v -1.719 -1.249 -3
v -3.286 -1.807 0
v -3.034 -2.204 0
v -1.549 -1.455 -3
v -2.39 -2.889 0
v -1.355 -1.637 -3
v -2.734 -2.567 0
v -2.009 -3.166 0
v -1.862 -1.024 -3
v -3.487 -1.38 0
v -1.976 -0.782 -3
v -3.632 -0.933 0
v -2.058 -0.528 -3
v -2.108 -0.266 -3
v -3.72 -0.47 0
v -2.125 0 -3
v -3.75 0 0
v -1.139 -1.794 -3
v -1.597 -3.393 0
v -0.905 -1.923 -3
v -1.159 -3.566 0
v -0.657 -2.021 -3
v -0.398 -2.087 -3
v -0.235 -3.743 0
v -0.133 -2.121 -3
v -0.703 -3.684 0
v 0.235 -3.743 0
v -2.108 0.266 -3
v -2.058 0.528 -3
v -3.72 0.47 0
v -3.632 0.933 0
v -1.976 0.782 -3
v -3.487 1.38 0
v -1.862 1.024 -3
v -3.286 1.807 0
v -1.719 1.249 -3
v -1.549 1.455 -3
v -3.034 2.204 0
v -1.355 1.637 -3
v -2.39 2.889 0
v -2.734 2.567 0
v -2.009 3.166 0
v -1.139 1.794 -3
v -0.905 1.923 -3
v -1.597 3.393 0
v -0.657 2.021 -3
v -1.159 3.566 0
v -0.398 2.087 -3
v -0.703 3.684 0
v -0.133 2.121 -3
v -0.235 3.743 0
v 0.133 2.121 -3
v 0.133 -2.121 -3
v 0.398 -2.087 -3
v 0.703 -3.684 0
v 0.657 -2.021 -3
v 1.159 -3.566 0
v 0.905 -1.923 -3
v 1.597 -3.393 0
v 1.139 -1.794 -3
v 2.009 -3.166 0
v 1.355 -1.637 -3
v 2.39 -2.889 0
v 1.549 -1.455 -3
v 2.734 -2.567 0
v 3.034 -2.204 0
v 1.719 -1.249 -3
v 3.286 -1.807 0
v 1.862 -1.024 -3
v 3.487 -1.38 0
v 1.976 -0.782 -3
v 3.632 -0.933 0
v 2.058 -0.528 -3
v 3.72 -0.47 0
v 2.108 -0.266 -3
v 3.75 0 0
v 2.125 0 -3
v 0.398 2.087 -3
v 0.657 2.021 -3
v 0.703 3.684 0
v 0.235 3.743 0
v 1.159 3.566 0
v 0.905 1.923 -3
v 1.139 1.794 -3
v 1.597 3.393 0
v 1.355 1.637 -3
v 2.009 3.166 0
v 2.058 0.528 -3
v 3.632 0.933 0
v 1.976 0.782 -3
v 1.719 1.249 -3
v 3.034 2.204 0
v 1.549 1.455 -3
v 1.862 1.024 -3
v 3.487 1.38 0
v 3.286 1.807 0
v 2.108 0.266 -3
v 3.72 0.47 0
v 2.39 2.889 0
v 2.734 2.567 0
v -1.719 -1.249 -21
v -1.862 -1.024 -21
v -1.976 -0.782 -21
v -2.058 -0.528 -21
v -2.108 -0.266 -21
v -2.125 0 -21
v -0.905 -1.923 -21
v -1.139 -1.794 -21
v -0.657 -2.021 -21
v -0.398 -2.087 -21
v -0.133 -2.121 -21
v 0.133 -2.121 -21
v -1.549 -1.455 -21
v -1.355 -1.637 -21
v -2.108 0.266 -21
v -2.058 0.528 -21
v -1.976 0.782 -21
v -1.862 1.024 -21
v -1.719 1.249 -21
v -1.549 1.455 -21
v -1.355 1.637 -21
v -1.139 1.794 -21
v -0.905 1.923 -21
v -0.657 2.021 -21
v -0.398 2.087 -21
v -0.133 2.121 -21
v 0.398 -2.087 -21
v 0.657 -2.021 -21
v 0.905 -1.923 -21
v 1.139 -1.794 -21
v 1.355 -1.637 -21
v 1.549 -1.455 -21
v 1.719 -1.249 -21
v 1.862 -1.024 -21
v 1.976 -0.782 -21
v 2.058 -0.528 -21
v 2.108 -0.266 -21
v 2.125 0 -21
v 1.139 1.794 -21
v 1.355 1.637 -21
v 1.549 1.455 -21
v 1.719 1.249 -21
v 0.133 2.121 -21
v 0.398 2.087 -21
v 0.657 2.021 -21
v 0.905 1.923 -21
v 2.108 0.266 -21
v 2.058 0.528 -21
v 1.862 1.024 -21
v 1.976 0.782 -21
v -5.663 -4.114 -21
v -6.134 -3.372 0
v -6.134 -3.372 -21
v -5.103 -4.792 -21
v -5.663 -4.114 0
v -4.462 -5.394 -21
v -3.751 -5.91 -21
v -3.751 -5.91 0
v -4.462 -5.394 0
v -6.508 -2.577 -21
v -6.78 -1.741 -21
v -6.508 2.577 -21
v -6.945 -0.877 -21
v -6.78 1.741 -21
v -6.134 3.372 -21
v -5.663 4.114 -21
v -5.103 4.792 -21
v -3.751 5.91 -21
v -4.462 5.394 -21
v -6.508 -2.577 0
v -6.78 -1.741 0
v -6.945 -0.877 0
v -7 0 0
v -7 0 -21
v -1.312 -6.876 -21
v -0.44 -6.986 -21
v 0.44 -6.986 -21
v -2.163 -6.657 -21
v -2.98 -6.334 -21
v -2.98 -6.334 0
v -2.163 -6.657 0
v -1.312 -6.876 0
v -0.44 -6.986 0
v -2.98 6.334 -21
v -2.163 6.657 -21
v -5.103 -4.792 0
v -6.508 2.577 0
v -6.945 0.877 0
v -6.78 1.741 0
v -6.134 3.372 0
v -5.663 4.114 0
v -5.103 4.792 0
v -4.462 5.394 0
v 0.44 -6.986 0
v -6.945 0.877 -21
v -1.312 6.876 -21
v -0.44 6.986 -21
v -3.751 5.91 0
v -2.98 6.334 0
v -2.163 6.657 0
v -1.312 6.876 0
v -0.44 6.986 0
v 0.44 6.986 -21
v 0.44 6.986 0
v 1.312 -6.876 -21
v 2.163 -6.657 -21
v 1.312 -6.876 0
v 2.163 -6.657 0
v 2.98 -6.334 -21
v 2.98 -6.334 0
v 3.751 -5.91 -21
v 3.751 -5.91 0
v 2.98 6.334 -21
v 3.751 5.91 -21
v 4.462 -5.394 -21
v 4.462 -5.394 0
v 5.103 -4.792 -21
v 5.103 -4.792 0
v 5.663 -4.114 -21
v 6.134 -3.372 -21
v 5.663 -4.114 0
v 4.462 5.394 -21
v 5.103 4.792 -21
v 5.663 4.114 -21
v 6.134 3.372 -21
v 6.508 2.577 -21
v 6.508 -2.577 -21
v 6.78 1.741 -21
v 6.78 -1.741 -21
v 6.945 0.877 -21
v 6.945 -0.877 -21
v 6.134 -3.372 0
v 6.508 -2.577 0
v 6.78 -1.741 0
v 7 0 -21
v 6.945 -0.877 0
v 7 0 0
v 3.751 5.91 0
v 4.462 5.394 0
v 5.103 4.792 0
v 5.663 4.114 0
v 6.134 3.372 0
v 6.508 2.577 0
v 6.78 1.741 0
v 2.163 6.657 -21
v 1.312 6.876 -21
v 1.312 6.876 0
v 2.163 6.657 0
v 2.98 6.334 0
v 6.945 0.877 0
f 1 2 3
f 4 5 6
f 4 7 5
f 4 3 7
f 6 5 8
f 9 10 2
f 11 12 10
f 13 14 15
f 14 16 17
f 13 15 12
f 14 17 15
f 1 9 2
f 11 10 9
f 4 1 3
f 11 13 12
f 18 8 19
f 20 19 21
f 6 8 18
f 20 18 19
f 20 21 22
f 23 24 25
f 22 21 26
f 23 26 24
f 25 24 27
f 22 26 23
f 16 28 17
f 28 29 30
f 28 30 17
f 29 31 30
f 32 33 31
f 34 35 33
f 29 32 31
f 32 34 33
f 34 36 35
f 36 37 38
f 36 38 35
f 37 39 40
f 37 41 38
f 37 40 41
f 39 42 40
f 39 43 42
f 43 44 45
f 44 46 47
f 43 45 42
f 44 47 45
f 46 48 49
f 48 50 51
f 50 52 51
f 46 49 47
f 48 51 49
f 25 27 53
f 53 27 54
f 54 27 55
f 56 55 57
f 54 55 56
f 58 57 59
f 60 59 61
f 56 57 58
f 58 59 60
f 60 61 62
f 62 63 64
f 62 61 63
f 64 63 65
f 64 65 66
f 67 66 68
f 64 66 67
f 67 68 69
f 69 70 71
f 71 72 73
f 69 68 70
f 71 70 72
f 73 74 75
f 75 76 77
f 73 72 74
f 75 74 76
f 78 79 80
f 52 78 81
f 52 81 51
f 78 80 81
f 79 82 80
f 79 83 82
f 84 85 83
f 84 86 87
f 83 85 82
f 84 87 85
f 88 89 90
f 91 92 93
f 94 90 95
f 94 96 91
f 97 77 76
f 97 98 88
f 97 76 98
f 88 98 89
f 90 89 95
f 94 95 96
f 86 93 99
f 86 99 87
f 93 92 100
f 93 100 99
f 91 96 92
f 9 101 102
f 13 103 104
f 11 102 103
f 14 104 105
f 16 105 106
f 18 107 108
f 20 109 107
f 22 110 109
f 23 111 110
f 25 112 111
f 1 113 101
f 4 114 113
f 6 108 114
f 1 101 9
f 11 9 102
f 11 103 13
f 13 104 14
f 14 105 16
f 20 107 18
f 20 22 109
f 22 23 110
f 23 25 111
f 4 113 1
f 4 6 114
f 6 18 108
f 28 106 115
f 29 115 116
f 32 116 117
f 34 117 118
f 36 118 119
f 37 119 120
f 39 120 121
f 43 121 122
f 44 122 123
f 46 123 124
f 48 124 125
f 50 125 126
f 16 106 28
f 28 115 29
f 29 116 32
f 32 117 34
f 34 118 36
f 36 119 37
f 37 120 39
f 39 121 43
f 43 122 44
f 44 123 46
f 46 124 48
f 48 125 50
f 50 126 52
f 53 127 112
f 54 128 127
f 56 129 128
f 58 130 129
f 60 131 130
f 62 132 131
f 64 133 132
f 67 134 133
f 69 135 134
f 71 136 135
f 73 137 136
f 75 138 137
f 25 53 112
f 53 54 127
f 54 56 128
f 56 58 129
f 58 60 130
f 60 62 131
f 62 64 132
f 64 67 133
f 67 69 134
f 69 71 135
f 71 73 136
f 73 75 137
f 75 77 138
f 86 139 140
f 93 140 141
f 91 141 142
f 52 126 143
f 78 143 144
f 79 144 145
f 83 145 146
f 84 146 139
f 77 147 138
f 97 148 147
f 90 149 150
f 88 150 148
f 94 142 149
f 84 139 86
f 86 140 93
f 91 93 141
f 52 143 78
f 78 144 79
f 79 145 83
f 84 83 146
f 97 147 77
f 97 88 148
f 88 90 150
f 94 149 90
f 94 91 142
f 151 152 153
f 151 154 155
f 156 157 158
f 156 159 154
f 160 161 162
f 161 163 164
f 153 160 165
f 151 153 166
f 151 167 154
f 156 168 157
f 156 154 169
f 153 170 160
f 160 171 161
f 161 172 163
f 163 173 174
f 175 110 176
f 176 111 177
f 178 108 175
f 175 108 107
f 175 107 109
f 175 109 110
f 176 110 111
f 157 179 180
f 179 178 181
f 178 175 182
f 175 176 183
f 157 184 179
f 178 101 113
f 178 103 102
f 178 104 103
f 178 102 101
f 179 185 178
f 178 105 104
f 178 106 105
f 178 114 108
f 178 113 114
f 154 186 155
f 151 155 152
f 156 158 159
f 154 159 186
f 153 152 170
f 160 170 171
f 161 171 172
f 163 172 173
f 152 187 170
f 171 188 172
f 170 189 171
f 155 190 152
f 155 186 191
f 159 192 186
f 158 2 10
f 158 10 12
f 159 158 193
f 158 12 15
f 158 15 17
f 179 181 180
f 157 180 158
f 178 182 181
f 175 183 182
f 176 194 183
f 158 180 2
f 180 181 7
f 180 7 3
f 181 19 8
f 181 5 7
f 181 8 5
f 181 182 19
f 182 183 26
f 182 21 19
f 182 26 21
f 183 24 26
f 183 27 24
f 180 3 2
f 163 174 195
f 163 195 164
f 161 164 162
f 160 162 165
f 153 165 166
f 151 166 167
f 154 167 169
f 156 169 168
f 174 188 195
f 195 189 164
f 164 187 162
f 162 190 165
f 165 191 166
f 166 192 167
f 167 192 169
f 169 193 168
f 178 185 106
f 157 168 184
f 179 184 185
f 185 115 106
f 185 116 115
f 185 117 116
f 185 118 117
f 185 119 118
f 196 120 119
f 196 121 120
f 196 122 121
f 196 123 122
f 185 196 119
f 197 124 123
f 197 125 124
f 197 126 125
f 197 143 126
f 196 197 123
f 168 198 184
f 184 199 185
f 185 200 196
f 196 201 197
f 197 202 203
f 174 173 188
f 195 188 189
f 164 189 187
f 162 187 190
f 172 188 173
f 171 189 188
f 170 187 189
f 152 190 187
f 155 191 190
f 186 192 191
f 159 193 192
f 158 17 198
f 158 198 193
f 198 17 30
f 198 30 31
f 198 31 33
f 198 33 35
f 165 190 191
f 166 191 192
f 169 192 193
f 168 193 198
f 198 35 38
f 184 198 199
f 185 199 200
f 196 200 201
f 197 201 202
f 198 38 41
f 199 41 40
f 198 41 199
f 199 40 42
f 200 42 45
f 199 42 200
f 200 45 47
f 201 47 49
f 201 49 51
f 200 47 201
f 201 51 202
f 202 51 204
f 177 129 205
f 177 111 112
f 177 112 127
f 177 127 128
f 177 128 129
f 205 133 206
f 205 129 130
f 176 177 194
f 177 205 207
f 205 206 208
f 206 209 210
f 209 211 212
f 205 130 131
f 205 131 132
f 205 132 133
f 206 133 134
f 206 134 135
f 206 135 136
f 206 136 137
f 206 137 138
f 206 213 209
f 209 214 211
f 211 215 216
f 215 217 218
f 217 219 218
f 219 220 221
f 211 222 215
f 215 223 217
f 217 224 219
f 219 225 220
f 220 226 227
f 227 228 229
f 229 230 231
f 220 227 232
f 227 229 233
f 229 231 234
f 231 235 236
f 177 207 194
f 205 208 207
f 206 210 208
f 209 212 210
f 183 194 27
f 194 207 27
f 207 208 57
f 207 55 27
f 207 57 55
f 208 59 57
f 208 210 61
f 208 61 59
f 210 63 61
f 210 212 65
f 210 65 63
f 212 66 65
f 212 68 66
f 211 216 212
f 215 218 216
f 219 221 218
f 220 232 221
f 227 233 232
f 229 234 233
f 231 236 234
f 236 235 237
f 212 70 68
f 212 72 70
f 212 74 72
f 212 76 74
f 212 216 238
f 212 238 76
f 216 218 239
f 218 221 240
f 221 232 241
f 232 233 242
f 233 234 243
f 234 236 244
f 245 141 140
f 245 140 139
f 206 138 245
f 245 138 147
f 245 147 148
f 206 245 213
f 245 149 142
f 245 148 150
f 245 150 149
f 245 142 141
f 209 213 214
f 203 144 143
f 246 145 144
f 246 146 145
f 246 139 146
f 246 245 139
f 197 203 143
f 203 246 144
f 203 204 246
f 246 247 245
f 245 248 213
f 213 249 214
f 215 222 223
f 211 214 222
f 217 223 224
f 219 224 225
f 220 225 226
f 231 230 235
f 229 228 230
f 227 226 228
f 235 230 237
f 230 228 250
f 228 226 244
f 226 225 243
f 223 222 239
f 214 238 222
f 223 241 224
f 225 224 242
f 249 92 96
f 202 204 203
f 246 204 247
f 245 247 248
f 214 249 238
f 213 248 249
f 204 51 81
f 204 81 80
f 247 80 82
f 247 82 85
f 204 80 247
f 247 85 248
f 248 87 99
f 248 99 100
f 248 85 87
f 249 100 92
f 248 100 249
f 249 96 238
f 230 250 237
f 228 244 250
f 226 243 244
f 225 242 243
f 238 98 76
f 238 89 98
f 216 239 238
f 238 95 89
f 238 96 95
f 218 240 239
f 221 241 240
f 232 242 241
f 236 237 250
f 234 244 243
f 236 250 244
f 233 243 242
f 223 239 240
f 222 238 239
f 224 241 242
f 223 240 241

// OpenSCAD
$fn = 50;

difference() {
	union() {
		translate(v = [0, 0, -21.0]) {
			cylinder(h = 21, r = 7.0);
		}
	}
	union() {
		translate(v = [0, 0, 0]) {
			rotate(a = [0, 0, 0]) {
				difference() {
					union() {
						translate(v = [0, 0, -24.0]) {
							cylinder(h = 24, r = 2.0);
						}
						translate(v = [0, 0, -3]) {
							cylinder(h = 3, r1 = 2.125, r2 = 3.75);
						}
						translate(v = [0, 0, -24.0]) {
							cylinder(h = 24, r = 2.125);
						}
						translate(v = [0, 0, -24.0]) {
							cylinder(h = 24, r = 2.0);
						}
					}
					union();
				}
			}
		}
	}
}
